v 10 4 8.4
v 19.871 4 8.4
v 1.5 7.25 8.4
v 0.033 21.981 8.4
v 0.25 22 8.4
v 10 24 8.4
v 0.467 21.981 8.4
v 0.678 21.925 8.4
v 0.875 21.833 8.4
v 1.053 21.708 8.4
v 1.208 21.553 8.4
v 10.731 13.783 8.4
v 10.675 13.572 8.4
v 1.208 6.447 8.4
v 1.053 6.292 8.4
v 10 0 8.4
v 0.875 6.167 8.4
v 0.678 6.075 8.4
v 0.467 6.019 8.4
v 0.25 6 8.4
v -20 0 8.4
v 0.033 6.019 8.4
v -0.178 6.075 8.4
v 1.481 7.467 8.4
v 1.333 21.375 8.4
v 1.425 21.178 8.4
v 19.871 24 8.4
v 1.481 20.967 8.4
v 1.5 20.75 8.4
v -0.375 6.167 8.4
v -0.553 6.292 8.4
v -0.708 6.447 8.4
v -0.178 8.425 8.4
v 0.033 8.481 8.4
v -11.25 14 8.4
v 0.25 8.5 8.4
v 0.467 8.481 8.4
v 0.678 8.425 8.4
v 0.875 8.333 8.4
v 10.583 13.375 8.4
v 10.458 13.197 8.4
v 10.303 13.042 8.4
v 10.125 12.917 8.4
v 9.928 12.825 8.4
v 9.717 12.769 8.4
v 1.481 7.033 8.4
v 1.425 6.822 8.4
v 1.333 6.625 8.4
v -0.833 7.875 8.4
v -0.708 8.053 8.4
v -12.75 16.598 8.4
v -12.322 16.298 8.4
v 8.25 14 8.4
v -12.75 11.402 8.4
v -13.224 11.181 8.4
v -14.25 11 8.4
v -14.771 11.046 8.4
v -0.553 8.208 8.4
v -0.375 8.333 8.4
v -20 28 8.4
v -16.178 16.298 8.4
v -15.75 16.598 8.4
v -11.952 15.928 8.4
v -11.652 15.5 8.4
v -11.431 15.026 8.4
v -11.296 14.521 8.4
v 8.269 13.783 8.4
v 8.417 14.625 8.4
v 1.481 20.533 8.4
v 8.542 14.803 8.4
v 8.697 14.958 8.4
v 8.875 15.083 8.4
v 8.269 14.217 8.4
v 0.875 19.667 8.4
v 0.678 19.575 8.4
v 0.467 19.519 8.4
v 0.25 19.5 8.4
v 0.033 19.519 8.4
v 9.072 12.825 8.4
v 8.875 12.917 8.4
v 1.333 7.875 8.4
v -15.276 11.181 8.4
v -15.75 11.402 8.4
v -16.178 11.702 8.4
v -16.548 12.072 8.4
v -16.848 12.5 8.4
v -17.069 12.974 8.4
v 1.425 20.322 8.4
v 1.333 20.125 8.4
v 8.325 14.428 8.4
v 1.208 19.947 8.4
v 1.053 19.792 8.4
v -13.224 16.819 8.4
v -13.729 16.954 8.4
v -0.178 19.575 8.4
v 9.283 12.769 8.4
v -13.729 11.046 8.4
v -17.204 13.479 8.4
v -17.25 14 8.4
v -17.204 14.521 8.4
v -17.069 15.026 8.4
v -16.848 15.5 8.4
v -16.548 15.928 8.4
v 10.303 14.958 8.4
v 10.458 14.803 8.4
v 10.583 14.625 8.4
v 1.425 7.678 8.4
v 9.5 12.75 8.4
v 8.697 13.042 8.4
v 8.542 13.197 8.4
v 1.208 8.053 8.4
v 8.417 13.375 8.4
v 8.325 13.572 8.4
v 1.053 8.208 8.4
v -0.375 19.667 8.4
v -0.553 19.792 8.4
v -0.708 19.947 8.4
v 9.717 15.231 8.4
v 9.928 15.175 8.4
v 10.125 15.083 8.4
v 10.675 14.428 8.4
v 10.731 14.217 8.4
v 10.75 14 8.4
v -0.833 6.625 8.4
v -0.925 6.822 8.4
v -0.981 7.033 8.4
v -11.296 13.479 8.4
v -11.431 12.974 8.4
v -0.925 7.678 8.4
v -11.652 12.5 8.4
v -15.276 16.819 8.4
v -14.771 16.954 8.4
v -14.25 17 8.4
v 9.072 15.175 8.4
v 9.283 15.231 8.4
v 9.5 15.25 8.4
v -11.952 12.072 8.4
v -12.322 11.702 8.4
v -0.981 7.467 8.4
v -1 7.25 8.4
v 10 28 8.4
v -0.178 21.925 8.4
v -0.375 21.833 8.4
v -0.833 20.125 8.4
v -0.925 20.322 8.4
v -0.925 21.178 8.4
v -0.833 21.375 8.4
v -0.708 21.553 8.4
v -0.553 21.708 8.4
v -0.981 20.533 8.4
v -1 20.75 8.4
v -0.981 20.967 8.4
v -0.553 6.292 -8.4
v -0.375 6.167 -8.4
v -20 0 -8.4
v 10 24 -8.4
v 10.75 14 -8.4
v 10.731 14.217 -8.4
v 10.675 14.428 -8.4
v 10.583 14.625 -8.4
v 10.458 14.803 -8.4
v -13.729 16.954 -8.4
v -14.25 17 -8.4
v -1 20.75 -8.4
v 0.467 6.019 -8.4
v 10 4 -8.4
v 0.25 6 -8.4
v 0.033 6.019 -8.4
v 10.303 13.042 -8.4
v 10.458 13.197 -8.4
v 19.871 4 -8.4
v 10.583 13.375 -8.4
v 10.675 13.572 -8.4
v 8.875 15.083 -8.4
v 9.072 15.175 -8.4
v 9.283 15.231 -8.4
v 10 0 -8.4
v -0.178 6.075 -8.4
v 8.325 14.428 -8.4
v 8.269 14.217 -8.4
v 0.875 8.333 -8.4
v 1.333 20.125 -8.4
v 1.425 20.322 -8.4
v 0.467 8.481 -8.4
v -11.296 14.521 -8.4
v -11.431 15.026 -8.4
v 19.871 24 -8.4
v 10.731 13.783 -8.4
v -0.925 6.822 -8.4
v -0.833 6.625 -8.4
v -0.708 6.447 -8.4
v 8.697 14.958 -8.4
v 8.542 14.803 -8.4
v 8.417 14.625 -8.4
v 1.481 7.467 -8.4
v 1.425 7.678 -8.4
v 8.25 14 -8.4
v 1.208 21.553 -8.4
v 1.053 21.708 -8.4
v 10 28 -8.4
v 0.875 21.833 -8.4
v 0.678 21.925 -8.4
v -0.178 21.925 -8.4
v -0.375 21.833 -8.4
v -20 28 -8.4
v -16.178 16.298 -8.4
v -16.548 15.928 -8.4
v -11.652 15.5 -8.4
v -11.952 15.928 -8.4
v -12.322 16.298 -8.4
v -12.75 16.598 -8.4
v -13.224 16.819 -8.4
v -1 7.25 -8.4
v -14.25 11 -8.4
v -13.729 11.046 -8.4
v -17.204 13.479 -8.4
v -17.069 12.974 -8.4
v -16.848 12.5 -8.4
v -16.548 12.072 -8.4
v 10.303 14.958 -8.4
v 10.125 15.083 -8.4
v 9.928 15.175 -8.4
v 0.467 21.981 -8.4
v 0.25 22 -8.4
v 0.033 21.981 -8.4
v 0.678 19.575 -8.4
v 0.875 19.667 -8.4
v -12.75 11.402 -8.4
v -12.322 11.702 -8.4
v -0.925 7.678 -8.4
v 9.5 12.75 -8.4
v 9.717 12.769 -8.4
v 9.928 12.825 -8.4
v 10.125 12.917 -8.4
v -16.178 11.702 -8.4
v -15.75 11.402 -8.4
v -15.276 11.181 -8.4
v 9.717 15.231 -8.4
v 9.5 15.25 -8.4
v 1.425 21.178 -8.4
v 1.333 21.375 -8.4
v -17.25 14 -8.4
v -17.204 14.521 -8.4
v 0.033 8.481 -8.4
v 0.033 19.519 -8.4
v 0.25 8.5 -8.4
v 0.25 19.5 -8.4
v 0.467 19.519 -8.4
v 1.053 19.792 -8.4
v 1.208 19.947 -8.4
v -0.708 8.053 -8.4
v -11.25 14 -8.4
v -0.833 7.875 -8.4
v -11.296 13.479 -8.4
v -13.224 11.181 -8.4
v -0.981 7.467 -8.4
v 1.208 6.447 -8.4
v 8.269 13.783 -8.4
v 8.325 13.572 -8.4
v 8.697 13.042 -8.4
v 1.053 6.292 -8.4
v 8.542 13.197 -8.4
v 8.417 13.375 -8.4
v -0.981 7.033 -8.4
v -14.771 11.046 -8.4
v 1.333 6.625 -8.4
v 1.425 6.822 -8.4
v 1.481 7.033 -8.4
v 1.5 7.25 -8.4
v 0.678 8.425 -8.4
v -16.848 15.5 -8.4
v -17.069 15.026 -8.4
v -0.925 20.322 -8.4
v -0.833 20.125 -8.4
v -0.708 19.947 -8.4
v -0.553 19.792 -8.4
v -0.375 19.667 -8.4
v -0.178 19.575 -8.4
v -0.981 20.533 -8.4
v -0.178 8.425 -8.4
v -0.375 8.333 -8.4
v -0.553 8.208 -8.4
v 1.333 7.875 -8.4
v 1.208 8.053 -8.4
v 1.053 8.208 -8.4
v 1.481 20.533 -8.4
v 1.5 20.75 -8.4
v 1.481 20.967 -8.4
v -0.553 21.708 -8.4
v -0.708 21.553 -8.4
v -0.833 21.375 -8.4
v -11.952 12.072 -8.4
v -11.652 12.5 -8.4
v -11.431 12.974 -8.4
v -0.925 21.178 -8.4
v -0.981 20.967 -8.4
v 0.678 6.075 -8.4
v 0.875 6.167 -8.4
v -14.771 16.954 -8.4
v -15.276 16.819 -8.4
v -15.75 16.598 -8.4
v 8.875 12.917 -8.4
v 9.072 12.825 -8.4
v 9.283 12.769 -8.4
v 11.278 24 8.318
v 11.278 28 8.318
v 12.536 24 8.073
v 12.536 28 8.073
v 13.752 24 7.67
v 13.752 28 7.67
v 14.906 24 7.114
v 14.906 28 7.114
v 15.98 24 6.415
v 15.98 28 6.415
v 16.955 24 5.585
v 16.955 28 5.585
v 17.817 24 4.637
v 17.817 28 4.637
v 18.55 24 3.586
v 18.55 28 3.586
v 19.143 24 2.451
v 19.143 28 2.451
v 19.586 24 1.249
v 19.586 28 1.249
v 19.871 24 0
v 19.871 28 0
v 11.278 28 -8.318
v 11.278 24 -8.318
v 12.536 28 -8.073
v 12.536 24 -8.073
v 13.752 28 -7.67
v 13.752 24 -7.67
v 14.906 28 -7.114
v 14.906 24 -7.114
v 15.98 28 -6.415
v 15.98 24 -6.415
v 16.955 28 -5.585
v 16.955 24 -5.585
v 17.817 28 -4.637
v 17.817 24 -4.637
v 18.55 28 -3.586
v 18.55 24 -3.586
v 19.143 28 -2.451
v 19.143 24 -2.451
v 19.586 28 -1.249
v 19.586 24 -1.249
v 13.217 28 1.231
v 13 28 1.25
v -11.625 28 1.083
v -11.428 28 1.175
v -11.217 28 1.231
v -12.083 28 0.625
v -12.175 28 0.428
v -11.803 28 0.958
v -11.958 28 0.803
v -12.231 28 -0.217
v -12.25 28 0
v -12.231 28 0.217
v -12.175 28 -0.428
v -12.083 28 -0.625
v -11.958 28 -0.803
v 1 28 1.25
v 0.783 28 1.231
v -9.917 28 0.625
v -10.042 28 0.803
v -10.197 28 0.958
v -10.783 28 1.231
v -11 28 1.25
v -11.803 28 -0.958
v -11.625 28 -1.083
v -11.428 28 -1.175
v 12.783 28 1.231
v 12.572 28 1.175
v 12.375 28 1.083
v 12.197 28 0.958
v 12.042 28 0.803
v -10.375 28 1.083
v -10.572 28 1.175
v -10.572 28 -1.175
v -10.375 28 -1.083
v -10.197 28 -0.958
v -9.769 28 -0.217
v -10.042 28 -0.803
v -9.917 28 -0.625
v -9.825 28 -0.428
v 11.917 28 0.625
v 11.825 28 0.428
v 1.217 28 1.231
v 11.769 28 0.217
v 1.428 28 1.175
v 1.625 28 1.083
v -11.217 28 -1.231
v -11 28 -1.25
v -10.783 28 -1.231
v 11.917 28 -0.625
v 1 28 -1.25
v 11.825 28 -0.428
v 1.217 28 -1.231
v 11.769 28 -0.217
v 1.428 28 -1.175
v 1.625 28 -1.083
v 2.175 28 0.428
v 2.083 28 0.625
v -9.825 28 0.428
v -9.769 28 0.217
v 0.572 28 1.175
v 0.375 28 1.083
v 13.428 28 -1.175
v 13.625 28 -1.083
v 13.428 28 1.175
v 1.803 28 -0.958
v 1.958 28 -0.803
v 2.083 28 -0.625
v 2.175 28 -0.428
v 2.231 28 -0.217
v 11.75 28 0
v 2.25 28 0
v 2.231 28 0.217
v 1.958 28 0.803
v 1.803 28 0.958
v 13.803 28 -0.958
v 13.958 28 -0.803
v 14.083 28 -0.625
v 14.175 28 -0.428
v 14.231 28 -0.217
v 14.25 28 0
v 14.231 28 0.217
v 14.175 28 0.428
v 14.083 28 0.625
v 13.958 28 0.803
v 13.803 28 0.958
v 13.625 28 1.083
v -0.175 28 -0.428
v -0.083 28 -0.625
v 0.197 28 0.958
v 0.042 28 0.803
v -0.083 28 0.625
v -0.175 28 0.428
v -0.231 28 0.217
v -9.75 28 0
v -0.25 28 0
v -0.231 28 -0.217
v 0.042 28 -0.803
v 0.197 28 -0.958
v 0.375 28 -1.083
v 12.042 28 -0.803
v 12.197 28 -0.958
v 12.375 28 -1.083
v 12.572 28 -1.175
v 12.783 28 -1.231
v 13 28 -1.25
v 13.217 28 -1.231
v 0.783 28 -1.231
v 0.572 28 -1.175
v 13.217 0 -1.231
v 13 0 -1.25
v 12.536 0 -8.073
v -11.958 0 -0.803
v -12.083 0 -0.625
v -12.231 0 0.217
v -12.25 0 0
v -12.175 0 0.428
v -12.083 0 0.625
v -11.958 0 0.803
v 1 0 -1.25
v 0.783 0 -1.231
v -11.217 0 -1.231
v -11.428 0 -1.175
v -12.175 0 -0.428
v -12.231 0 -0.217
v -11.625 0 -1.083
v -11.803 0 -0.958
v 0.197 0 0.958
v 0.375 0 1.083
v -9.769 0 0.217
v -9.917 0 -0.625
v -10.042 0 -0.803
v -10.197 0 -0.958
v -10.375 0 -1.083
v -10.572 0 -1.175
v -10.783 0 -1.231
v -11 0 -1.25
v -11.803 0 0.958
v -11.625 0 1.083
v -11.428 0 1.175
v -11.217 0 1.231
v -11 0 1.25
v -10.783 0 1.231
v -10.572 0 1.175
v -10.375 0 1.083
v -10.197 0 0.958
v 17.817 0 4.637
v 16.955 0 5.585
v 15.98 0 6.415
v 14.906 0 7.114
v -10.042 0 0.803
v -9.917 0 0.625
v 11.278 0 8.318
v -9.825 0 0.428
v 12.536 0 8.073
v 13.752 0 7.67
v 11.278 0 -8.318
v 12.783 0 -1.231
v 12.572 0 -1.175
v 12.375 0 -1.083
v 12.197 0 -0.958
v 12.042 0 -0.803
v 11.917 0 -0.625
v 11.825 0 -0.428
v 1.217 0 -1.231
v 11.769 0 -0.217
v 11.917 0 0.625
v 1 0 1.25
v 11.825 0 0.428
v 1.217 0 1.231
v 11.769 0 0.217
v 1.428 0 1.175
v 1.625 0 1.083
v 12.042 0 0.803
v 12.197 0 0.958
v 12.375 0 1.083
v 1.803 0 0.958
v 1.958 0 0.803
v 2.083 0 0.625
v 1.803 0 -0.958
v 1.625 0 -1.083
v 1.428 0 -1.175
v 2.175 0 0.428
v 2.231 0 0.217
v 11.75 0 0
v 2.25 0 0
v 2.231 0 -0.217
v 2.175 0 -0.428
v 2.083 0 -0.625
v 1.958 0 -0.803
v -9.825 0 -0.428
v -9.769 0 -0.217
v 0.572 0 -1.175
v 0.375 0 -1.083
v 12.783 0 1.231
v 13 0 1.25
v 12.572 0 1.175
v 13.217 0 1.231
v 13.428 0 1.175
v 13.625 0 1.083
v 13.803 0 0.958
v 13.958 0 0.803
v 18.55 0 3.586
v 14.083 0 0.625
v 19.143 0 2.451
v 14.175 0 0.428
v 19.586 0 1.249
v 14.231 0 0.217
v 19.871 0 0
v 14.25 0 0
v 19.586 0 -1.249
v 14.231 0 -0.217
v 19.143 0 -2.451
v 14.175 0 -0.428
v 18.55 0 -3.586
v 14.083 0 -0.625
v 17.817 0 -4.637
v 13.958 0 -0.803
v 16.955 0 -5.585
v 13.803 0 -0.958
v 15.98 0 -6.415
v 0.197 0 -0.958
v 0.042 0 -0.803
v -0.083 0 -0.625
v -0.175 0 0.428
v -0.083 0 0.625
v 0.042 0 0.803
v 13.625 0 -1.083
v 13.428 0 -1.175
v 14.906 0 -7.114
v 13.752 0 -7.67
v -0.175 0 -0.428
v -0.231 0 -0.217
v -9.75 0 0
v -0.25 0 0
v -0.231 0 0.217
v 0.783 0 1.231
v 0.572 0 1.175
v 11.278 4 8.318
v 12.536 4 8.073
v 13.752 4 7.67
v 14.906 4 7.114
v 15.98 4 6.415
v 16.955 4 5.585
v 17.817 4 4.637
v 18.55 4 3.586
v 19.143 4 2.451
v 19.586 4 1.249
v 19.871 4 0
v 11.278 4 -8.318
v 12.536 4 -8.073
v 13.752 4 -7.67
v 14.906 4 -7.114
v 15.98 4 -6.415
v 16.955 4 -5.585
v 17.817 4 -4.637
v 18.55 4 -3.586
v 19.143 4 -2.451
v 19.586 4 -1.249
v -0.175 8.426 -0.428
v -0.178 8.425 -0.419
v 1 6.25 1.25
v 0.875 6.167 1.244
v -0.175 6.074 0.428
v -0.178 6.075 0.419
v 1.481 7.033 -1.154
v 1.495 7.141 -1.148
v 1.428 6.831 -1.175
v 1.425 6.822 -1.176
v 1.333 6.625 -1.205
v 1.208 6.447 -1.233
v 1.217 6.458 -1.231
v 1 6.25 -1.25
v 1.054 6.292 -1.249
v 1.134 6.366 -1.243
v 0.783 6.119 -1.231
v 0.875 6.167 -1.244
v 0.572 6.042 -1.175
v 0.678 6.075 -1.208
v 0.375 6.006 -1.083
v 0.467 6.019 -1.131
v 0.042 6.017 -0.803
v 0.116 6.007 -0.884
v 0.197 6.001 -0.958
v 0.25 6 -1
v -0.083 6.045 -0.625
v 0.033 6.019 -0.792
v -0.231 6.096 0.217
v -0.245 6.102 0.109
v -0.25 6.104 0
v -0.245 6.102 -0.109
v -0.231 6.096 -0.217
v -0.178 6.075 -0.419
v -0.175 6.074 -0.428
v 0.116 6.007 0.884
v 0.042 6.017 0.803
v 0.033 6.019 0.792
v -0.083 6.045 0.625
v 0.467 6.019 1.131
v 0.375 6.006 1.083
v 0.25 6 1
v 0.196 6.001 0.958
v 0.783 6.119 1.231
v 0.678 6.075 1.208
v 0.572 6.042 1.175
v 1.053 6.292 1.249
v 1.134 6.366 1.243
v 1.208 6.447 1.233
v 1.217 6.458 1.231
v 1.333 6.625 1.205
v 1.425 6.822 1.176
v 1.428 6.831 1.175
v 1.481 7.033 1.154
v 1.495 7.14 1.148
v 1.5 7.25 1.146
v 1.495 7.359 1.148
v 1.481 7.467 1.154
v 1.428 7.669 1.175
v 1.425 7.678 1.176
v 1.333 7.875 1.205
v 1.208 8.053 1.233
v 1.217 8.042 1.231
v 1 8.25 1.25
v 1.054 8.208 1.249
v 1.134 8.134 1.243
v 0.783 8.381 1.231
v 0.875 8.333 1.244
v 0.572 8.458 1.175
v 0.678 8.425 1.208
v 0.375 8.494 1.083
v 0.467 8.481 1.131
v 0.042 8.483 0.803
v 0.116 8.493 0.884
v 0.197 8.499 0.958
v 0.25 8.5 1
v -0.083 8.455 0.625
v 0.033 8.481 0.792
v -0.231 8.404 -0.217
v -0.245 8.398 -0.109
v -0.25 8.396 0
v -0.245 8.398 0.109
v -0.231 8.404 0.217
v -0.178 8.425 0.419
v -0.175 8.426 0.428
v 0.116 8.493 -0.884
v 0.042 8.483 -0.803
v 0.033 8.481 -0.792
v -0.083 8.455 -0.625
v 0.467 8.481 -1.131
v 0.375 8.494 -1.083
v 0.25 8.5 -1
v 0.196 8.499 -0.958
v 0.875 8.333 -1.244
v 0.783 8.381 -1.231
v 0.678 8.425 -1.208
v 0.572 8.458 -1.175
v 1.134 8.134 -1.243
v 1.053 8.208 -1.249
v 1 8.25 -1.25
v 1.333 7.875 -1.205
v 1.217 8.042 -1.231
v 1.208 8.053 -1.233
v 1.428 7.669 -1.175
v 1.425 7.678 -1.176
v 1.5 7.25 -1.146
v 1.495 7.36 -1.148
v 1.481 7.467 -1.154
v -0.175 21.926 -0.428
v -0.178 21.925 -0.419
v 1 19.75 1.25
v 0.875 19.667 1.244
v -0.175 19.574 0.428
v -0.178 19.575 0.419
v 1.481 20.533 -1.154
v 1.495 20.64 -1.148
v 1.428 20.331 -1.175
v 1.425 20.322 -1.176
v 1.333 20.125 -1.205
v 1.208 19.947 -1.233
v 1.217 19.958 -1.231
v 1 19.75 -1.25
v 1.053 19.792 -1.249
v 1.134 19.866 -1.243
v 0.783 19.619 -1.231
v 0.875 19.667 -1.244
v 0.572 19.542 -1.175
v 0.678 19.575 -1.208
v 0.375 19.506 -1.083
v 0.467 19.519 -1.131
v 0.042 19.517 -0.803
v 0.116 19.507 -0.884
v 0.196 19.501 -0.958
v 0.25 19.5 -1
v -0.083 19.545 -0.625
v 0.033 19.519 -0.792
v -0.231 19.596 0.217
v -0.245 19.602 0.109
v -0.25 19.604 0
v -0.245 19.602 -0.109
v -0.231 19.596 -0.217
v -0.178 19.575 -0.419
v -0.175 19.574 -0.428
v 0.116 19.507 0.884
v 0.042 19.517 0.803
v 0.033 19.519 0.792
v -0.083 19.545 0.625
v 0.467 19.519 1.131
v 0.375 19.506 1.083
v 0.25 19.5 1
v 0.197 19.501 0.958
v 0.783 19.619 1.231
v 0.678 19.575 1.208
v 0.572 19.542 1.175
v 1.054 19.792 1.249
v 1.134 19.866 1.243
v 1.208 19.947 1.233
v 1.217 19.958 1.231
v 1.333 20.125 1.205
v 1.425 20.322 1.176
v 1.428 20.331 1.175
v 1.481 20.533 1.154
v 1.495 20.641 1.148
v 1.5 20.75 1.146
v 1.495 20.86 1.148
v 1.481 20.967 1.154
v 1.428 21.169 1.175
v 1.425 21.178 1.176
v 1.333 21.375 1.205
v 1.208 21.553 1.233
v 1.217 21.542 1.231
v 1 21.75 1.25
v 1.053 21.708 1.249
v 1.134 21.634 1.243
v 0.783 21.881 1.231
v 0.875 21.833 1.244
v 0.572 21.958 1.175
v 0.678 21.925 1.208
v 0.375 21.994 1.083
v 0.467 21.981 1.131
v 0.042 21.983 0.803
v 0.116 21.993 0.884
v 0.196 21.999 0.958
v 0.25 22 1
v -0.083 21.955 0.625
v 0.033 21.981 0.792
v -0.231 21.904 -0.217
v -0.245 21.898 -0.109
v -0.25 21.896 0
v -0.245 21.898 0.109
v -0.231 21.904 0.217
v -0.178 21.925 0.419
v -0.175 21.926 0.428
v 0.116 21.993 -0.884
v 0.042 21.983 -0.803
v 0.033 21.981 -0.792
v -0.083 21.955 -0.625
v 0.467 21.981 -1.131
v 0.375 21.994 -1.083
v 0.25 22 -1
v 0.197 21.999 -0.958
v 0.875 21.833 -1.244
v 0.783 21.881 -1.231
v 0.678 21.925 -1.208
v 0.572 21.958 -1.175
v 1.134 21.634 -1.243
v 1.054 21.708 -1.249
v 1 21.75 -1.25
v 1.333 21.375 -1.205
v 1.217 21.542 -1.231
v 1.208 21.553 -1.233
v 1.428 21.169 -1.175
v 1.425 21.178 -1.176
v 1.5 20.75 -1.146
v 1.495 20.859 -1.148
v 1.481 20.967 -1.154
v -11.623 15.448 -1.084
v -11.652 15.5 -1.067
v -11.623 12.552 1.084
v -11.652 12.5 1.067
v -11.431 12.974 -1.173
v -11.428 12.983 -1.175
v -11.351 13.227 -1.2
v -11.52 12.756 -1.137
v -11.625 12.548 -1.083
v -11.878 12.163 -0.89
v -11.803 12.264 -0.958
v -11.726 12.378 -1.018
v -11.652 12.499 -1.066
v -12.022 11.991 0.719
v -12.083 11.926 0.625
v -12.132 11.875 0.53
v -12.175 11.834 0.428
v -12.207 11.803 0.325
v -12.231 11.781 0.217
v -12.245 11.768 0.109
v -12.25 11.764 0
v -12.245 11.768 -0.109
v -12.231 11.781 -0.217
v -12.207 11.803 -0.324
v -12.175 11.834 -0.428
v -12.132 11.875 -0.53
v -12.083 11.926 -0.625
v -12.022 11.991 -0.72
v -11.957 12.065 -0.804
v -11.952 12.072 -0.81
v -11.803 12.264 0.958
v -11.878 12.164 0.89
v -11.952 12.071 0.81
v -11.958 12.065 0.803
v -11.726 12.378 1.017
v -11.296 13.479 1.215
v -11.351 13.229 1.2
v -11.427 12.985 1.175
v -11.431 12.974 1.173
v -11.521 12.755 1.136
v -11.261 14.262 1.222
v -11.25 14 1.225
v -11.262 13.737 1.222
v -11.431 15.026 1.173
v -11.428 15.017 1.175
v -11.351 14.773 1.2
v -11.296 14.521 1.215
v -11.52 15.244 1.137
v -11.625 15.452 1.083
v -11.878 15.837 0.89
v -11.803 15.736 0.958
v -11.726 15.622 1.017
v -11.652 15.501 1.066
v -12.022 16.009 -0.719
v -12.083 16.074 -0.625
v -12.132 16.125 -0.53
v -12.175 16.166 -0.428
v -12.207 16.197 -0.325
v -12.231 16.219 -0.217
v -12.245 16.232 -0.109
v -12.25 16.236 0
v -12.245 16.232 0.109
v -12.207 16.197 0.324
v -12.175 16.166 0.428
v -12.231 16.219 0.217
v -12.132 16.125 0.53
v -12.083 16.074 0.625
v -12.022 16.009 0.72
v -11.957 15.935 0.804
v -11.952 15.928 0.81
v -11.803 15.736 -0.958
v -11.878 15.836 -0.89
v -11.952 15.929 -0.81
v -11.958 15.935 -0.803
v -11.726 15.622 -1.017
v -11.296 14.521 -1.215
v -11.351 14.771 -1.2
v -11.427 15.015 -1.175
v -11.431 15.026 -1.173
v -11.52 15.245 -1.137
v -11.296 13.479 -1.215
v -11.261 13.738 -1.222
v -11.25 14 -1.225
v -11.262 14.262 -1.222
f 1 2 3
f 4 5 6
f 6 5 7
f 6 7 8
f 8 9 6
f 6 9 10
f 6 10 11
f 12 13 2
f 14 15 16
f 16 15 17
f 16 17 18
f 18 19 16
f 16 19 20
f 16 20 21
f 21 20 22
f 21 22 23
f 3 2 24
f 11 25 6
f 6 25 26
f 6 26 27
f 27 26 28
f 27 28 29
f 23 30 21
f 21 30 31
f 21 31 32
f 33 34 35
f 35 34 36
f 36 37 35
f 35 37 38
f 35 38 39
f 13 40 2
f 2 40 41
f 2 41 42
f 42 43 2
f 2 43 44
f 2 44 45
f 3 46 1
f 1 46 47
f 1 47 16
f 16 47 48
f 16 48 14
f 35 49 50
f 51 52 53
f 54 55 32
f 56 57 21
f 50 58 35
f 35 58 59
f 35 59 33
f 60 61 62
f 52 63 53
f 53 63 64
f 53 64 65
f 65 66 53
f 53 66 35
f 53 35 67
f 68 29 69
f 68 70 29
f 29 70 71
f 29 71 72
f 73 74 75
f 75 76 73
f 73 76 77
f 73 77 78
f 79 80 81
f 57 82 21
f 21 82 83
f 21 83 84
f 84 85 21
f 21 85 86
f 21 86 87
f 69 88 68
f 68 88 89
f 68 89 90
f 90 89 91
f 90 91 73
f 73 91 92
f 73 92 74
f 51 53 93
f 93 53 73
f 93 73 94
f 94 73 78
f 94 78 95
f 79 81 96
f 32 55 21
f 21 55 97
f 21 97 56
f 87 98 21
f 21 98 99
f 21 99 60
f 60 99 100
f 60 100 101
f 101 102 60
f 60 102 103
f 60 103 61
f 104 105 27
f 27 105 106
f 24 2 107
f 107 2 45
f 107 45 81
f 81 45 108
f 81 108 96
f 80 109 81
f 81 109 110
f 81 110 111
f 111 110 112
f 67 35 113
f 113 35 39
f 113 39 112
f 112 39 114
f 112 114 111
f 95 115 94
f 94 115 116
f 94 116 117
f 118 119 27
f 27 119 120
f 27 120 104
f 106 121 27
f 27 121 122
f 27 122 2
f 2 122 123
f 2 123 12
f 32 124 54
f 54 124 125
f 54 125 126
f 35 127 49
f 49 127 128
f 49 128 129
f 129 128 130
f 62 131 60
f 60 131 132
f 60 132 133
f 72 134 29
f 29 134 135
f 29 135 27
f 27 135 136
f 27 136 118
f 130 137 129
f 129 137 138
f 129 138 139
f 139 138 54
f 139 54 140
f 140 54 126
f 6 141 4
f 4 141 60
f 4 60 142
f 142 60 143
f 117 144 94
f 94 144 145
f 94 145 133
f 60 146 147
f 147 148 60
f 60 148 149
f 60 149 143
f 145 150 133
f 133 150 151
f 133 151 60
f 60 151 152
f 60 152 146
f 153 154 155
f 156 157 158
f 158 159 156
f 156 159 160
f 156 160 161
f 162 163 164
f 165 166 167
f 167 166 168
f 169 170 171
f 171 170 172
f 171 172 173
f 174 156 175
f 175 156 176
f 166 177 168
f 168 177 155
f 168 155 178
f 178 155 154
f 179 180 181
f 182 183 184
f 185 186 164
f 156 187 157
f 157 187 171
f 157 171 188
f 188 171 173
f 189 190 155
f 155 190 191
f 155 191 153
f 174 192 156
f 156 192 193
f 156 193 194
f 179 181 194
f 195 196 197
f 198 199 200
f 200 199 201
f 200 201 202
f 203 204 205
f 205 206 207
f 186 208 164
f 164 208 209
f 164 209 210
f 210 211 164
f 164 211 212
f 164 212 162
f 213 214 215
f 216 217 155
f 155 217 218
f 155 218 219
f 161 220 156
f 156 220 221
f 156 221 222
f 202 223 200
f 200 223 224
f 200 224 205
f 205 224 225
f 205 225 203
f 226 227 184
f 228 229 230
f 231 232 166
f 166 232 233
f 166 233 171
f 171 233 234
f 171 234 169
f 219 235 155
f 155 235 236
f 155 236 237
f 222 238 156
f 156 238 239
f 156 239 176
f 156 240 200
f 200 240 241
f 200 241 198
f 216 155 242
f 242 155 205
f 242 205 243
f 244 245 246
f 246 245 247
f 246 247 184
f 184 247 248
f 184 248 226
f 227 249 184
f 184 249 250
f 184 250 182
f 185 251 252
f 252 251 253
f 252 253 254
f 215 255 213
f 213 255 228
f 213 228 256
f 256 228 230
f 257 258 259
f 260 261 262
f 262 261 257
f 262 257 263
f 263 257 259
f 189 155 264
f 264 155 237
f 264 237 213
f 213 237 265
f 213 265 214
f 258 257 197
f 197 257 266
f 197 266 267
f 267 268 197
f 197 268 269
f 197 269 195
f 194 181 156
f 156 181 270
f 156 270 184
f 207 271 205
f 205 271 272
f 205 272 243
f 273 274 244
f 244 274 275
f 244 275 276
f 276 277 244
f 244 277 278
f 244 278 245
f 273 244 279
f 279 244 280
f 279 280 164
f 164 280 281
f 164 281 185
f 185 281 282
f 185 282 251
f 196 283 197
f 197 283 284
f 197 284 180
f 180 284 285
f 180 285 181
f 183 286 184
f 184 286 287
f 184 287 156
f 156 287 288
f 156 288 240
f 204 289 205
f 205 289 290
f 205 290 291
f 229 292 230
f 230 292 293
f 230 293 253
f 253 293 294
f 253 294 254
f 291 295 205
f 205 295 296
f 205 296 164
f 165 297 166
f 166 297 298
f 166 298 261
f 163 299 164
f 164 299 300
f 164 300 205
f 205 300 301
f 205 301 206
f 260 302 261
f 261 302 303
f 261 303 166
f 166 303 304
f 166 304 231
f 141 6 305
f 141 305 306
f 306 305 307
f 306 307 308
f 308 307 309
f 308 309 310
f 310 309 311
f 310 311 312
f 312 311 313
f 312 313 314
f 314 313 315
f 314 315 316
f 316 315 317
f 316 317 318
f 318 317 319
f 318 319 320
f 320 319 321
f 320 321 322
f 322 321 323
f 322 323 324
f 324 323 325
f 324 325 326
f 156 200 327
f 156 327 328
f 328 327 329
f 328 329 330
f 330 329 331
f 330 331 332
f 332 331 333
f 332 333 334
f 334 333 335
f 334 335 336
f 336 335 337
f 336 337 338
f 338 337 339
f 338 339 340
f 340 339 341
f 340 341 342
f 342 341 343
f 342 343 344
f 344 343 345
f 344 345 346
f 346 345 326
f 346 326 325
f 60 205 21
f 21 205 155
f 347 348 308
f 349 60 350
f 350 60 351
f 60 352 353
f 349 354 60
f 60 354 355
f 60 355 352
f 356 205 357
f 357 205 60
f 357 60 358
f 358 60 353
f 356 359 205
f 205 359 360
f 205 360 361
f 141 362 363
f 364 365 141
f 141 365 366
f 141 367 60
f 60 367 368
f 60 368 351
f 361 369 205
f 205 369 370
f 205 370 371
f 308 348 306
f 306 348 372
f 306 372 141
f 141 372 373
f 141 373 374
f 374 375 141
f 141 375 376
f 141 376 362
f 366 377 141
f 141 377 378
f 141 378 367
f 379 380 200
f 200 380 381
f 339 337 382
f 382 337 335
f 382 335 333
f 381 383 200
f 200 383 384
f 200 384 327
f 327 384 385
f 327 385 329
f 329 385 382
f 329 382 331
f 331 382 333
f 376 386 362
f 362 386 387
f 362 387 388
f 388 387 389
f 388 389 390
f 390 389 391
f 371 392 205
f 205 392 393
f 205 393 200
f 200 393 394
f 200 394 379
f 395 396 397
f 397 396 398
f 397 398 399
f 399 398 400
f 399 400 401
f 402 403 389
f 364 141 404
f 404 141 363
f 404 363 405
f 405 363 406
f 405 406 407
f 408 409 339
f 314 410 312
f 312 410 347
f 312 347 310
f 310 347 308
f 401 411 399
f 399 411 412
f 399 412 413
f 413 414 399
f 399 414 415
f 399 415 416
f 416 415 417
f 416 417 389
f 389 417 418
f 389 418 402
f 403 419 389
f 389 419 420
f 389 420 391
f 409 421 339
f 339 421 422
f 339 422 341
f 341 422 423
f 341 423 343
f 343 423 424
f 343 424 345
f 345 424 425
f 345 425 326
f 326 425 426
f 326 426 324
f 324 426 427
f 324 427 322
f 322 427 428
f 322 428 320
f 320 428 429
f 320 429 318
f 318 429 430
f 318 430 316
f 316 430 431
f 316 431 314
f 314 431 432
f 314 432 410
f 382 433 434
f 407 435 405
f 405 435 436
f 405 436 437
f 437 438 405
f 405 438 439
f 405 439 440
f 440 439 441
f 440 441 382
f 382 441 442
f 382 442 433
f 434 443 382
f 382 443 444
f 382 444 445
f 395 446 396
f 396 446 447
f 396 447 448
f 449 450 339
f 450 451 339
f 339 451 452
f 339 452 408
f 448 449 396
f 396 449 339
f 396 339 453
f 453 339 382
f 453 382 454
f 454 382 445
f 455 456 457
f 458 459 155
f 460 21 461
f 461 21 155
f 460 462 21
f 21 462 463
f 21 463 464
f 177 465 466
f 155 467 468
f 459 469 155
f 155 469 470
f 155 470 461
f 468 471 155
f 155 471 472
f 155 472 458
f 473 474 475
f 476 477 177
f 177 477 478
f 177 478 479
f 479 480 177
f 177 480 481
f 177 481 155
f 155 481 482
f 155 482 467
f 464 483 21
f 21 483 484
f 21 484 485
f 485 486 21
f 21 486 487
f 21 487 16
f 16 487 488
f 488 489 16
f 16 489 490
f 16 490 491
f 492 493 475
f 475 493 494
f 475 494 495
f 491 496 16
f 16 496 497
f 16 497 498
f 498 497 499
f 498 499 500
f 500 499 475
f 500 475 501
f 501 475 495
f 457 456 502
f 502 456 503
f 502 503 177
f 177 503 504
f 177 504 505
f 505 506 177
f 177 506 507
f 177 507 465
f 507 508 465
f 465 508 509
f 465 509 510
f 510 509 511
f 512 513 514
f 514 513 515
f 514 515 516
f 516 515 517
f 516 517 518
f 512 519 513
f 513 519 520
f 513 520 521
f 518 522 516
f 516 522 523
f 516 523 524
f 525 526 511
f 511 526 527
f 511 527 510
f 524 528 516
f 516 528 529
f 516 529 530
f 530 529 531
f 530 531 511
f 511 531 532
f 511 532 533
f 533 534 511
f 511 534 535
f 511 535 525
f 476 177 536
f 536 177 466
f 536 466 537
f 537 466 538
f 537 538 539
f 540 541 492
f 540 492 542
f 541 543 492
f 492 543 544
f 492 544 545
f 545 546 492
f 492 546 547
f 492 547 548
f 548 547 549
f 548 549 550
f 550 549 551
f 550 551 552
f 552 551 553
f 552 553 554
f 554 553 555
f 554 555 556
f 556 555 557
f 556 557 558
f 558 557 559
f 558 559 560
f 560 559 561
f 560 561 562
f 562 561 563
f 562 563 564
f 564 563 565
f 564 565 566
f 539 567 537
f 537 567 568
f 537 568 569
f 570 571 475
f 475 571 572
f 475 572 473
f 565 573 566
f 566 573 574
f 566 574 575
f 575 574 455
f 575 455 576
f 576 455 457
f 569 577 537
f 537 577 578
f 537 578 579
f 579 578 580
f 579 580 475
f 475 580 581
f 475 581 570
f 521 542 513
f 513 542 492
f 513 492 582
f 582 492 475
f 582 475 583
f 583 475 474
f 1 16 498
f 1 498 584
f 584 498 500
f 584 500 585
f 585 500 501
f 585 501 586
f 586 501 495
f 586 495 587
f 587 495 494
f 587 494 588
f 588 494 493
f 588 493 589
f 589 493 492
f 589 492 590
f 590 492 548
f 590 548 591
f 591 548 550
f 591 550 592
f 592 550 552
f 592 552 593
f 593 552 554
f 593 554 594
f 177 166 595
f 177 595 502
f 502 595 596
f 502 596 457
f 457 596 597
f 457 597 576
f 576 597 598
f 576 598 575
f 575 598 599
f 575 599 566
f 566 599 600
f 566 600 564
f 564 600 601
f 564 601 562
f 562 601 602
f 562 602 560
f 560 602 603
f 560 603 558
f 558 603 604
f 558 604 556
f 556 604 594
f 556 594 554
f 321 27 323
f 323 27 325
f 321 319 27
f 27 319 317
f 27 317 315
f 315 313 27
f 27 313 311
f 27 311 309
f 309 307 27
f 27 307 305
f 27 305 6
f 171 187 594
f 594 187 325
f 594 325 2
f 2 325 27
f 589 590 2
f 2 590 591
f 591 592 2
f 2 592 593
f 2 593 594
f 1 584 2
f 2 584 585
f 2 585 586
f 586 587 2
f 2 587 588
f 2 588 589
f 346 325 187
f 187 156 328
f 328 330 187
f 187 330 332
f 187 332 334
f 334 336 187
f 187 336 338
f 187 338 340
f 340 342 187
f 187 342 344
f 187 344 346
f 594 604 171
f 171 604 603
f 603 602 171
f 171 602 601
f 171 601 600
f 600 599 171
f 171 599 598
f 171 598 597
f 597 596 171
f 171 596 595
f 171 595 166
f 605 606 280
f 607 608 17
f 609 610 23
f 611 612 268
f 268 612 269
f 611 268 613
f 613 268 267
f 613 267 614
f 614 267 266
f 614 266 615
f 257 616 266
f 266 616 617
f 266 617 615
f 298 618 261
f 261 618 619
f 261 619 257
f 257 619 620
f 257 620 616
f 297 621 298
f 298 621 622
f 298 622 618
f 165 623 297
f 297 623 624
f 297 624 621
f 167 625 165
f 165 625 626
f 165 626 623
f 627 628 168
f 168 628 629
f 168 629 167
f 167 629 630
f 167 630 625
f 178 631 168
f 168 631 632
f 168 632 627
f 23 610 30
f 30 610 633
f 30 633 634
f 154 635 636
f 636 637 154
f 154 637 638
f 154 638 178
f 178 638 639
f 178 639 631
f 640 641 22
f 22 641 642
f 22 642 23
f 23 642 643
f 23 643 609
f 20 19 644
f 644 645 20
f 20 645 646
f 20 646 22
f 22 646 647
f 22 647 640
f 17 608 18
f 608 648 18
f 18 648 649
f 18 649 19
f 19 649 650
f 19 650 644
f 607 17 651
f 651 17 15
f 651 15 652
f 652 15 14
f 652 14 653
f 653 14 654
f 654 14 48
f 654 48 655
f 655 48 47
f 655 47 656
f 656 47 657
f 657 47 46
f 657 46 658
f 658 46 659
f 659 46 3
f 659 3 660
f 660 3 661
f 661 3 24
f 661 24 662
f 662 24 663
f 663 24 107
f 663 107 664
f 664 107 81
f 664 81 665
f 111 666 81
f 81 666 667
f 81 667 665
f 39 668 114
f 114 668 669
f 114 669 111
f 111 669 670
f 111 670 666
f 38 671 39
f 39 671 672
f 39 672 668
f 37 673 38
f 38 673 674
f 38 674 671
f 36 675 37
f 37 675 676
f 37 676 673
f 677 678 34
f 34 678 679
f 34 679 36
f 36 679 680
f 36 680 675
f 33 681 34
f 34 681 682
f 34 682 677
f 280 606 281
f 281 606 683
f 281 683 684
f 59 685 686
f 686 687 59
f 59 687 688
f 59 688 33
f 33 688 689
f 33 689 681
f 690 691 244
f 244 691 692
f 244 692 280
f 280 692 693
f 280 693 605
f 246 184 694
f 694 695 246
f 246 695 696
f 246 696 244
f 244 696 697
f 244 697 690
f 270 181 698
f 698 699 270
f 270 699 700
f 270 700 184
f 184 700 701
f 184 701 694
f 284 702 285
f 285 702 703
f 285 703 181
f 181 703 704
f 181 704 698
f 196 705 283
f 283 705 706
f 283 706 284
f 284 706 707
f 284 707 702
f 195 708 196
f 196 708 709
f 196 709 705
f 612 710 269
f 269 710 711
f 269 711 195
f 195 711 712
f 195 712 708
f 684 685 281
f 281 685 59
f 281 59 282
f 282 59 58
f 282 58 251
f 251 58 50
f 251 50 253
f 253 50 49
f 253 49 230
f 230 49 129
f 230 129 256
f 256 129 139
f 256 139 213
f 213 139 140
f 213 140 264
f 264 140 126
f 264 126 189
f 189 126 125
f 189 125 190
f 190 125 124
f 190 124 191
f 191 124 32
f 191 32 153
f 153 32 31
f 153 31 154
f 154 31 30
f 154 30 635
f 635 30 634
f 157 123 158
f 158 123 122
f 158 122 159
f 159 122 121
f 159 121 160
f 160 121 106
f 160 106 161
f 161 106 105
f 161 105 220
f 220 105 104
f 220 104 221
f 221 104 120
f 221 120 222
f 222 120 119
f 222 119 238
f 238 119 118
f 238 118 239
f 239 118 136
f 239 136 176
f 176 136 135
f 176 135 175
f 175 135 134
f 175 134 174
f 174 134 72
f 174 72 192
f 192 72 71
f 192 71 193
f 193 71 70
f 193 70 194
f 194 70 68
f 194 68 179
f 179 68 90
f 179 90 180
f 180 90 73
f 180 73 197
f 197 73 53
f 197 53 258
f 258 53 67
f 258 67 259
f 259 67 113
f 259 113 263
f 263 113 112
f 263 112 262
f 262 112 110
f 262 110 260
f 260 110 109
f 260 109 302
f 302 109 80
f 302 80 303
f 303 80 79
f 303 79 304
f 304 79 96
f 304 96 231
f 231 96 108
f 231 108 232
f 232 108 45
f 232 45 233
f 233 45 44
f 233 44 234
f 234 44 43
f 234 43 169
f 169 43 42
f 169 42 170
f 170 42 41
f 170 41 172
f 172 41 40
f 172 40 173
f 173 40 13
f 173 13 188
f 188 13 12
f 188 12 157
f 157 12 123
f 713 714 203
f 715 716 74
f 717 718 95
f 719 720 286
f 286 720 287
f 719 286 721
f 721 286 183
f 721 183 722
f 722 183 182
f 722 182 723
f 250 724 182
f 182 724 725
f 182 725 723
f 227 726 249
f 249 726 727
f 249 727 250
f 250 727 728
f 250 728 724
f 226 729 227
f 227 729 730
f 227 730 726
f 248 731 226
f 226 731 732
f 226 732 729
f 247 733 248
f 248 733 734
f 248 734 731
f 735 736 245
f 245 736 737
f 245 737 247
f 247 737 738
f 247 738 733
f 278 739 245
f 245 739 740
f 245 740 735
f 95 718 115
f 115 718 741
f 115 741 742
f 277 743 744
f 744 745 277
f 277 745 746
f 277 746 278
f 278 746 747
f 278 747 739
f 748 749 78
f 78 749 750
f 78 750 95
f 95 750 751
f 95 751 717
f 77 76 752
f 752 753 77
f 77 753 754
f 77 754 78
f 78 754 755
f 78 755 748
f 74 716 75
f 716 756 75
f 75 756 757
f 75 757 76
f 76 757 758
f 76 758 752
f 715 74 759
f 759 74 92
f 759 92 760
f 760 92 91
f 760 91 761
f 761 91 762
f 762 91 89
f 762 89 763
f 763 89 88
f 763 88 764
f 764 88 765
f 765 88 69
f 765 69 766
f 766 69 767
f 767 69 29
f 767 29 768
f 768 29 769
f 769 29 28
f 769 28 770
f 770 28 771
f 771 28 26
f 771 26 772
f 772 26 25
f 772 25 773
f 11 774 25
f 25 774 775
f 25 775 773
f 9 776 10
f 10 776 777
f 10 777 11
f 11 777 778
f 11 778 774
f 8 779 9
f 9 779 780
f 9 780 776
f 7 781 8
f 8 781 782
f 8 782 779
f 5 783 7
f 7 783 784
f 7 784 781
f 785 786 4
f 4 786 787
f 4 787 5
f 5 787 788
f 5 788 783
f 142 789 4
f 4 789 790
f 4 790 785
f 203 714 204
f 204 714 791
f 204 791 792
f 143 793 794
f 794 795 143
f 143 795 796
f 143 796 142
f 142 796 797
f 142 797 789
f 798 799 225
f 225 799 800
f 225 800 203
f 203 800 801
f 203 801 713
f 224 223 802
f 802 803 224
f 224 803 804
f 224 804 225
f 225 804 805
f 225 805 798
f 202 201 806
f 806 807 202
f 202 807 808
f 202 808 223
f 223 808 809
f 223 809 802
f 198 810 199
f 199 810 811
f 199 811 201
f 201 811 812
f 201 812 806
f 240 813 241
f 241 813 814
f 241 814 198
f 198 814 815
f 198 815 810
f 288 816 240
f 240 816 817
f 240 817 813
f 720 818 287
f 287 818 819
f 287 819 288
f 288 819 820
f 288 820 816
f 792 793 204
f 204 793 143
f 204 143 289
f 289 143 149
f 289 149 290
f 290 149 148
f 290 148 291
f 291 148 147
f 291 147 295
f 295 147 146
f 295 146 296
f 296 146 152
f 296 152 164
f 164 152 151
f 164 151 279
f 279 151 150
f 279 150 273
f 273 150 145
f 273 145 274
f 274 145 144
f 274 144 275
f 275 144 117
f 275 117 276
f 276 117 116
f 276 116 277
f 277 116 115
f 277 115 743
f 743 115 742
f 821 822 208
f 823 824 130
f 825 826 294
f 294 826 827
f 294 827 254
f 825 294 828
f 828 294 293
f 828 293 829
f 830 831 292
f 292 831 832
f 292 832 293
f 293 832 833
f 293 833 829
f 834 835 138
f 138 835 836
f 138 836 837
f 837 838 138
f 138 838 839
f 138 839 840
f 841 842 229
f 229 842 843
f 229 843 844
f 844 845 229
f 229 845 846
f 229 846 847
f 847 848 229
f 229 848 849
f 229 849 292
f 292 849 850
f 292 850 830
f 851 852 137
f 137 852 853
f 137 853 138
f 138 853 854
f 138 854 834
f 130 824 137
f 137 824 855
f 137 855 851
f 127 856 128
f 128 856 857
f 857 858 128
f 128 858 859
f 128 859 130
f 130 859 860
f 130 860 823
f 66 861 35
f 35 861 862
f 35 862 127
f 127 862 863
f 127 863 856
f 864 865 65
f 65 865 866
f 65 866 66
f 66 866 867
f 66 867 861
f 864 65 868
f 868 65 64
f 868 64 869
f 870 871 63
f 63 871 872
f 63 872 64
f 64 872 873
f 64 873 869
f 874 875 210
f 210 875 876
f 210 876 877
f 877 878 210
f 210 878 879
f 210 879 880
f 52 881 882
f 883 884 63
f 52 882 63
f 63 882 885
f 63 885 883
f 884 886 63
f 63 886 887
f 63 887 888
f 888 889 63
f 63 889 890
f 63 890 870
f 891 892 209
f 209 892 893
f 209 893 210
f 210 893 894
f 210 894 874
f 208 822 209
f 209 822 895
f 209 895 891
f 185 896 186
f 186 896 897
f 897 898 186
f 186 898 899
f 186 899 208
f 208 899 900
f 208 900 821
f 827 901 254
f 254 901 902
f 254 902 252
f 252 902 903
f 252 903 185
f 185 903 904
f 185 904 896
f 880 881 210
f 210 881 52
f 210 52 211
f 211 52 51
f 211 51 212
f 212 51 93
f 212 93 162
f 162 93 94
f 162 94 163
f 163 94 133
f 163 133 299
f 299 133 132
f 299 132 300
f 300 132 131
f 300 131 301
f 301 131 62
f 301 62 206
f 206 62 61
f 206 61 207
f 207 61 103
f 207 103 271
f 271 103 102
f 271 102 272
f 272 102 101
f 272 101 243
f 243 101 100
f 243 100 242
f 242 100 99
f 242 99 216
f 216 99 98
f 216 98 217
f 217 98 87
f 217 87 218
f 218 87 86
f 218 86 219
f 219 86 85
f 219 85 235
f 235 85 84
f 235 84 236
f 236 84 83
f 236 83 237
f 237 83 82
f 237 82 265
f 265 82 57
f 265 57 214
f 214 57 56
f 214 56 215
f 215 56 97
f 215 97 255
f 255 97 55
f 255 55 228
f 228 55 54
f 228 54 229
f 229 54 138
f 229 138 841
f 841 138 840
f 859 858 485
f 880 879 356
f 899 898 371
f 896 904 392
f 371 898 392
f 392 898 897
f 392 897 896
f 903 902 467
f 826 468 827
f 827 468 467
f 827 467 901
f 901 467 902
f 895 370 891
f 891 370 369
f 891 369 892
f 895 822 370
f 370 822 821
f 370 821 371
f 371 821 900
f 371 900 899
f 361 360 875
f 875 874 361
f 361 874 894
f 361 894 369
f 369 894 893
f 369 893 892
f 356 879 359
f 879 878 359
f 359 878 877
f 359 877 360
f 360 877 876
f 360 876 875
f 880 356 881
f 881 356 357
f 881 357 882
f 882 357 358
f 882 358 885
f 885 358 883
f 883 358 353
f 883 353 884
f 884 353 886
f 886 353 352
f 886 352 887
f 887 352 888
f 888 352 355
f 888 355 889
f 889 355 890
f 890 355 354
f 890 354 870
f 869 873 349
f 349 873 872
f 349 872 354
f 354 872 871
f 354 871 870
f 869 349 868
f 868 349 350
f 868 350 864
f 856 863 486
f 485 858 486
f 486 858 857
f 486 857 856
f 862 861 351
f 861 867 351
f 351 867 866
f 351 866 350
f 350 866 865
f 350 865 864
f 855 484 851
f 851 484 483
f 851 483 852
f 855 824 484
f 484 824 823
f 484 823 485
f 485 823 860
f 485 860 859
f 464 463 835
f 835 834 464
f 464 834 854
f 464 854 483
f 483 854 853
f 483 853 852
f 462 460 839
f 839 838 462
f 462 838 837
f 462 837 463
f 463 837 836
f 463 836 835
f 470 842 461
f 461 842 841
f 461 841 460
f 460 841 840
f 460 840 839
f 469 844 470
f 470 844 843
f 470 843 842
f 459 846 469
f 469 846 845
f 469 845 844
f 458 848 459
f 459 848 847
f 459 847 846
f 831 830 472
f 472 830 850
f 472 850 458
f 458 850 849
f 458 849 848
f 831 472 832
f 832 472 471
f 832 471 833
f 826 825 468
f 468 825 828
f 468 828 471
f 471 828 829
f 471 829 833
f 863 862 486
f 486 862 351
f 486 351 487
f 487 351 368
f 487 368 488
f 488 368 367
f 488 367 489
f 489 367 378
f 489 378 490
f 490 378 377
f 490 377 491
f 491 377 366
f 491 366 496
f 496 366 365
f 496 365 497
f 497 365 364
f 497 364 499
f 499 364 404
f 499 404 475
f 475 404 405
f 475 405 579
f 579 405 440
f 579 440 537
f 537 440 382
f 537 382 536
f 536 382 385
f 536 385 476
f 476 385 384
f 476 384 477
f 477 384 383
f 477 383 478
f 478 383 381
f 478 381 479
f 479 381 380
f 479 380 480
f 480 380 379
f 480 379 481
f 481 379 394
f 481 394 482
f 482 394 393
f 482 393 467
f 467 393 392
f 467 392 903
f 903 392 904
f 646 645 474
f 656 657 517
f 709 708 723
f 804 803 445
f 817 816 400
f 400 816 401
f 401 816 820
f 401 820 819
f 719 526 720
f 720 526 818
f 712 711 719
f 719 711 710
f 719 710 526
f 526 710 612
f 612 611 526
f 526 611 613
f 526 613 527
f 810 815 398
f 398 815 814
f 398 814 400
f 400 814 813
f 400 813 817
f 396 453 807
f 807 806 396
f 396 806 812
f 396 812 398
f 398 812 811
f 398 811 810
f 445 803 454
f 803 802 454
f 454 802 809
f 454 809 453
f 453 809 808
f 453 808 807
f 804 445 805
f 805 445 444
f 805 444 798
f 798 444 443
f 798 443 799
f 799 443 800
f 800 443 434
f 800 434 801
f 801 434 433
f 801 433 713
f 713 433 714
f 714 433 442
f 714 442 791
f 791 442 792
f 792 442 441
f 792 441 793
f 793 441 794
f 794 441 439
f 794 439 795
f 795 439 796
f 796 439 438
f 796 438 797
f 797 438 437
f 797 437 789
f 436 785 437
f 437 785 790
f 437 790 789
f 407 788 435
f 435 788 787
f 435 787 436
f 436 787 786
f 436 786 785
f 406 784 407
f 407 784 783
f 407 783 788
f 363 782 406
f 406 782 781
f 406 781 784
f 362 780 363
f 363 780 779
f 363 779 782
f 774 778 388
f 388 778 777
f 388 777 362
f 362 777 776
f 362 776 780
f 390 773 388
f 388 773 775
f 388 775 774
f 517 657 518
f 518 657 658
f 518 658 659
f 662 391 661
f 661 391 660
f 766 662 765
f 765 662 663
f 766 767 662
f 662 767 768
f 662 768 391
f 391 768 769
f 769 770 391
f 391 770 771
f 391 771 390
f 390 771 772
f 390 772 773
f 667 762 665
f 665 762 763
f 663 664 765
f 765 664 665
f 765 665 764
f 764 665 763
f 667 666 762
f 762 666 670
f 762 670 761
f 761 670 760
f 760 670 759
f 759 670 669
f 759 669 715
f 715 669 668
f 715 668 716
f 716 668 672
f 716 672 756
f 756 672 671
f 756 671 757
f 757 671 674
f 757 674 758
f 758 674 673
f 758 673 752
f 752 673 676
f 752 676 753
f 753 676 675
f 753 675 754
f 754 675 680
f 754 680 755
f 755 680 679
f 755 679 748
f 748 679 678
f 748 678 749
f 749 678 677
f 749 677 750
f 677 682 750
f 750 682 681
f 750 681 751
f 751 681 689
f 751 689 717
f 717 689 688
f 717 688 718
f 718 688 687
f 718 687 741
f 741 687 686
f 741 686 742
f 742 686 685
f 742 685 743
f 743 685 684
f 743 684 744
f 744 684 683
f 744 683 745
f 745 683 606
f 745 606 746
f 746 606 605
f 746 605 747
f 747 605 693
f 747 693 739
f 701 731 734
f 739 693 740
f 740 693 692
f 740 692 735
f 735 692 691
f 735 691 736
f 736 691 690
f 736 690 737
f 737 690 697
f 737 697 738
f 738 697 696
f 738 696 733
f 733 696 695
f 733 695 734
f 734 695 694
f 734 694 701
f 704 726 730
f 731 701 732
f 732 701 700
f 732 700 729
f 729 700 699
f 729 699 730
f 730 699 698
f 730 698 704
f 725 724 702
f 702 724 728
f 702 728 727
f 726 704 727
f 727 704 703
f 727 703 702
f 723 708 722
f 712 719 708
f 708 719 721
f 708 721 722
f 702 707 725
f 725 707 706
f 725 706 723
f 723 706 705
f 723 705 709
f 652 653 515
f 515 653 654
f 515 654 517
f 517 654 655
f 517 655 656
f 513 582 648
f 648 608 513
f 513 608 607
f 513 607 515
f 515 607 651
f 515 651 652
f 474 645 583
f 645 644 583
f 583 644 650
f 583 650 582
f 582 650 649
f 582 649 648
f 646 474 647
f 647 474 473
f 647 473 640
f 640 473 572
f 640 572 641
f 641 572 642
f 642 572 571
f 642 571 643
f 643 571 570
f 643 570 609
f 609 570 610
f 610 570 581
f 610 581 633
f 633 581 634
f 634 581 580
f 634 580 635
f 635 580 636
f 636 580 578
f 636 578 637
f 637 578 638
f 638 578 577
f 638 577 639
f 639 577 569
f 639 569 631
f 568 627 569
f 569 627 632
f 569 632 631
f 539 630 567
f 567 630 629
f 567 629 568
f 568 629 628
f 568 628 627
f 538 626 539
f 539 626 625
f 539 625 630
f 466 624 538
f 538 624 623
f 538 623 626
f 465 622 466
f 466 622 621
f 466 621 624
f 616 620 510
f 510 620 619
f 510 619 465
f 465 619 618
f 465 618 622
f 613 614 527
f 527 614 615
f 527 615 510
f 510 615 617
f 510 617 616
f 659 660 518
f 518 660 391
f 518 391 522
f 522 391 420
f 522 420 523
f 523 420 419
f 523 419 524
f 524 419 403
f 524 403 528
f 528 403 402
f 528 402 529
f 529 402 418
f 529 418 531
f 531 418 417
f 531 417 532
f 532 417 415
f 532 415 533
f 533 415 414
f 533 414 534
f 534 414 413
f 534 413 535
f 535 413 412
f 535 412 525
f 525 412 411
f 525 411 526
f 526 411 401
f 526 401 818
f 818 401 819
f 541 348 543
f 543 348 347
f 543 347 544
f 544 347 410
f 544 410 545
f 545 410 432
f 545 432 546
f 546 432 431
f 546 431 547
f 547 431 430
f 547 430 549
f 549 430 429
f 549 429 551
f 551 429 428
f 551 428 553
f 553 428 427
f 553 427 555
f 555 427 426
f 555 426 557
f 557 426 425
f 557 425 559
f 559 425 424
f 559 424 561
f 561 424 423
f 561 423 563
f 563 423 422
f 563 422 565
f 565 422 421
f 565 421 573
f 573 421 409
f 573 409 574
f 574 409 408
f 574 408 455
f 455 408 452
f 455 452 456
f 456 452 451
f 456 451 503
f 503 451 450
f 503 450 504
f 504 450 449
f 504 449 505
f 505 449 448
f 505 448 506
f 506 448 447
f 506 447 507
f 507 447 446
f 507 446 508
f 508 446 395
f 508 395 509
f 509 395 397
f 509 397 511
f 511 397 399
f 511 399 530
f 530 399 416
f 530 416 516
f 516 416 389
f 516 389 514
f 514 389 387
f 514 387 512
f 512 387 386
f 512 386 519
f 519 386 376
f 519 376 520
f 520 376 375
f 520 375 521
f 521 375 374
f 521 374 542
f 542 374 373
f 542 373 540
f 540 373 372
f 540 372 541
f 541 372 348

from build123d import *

# Parameters (mm, degrees)
SKETCH1_W           = 40
SKETCH1_H           = 16.8
BOSS_EXTRUDE1_DEPTH = 28
FILLET2_R           = 10
SKETCH3_W           = 9.871170143
SKETCH3_H           = 10
SKETCH3_W_2         = 30
BOSS_EXTRUDE2_DEPTH = 16.8
SKETCH2_R           = 3
SKETCH2_R_2         = 1.25
CUT_EXTRUDE1_DEPTH  = 16.8
SKETCH4_R           = 1.25
CUT_EXTRUDE2_DEPTH  = 36.419768492


with BuildPart() as part:
    # Sketch1 → Boss-Extrude1 (new body)
    with BuildSketch(Plane(origin=(0, 0, 0), x_dir=(1, 0, 0), z_dir=(0, 1, 0))):
        Rectangle(SKETCH1_W, SKETCH1_H)
    extrude(amount=BOSS_EXTRUDE1_DEPTH)

    # Fillet2
    # the kernel refuses this fillet: 10 mm, written as the material it takes off along each edge
    with BuildSketch(Plane(origin=(20, -25, -8.4), x_dir=(0, 0, 1), z_dir=(0, 1, 0)), Plane(origin=(20, -25, 8.4), x_dir=(-1, 0, 0), z_dir=(0, 1, 0))) as fillet2_piece_1:
        with BuildLine():
            CenterArc((FILLET2_R, -FILLET2_R), FILLET2_R, 90, 90)
            Line((0, -FILLET2_R), (0, 0))
            Line((0, 0), (FILLET2_R, 0))
        make_face()
    extrude(amount=78, mode=Mode.SUBTRACT)

    # Sketch3 → Boss-Extrude2 (add)
    with BuildSketch(Plane.XY.offset(8.4)):
        with Locations((14.935585072, 9)):
            Rectangle(SKETCH3_W, SKETCH3_H)
        with Locations((14.935585072, 19)):
            Rectangle(SKETCH3_W, SKETCH3_H)
        with Locations((-5, 19)):
            Rectangle(SKETCH3_W_2, SKETCH3_H)
        with Locations((-5, 9)):
            Rectangle(SKETCH3_W_2, SKETCH3_H)
    extrude(amount=-BOSS_EXTRUDE2_DEPTH)

    # Sketch2 → Cut-Extrude1 (cut)
    with BuildSketch(Plane.XY.offset(8.4)):
        with Locations((-14.25, 14)):
            Circle(SKETCH2_R)
        with Locations((9.5, 14)):
            Circle(SKETCH2_R_2)
        with Locations((0.25, 20.75)):
            Circle(SKETCH2_R_2)
        with Locations((0.25, 7.25)):
            Circle(SKETCH2_R_2)
    extrude(amount=-CUT_EXTRUDE1_DEPTH, mode=Mode.SUBTRACT)

    # Sketch4 → Cut-Extrude2 (cut, through all)
    with BuildSketch(Plane(origin=(0, 28, 0), x_dir=(1, 0, 0), z_dir=(0, 1, 0))):
        with Locations(Location((-11, 0, 0), (0, 0, 270))):
            Circle(SKETCH4_R)
        with Locations(Location((1, 0, 0), (0, 0, 270))):
            Circle(SKETCH4_R)
        with Locations(Location((13, 0, 0), (0, 0, 270))):
            Circle(SKETCH4_R)
    extrude(amount=-CUT_EXTRUDE2_DEPTH, mode=Mode.SUBTRACT)


solid = part.part
